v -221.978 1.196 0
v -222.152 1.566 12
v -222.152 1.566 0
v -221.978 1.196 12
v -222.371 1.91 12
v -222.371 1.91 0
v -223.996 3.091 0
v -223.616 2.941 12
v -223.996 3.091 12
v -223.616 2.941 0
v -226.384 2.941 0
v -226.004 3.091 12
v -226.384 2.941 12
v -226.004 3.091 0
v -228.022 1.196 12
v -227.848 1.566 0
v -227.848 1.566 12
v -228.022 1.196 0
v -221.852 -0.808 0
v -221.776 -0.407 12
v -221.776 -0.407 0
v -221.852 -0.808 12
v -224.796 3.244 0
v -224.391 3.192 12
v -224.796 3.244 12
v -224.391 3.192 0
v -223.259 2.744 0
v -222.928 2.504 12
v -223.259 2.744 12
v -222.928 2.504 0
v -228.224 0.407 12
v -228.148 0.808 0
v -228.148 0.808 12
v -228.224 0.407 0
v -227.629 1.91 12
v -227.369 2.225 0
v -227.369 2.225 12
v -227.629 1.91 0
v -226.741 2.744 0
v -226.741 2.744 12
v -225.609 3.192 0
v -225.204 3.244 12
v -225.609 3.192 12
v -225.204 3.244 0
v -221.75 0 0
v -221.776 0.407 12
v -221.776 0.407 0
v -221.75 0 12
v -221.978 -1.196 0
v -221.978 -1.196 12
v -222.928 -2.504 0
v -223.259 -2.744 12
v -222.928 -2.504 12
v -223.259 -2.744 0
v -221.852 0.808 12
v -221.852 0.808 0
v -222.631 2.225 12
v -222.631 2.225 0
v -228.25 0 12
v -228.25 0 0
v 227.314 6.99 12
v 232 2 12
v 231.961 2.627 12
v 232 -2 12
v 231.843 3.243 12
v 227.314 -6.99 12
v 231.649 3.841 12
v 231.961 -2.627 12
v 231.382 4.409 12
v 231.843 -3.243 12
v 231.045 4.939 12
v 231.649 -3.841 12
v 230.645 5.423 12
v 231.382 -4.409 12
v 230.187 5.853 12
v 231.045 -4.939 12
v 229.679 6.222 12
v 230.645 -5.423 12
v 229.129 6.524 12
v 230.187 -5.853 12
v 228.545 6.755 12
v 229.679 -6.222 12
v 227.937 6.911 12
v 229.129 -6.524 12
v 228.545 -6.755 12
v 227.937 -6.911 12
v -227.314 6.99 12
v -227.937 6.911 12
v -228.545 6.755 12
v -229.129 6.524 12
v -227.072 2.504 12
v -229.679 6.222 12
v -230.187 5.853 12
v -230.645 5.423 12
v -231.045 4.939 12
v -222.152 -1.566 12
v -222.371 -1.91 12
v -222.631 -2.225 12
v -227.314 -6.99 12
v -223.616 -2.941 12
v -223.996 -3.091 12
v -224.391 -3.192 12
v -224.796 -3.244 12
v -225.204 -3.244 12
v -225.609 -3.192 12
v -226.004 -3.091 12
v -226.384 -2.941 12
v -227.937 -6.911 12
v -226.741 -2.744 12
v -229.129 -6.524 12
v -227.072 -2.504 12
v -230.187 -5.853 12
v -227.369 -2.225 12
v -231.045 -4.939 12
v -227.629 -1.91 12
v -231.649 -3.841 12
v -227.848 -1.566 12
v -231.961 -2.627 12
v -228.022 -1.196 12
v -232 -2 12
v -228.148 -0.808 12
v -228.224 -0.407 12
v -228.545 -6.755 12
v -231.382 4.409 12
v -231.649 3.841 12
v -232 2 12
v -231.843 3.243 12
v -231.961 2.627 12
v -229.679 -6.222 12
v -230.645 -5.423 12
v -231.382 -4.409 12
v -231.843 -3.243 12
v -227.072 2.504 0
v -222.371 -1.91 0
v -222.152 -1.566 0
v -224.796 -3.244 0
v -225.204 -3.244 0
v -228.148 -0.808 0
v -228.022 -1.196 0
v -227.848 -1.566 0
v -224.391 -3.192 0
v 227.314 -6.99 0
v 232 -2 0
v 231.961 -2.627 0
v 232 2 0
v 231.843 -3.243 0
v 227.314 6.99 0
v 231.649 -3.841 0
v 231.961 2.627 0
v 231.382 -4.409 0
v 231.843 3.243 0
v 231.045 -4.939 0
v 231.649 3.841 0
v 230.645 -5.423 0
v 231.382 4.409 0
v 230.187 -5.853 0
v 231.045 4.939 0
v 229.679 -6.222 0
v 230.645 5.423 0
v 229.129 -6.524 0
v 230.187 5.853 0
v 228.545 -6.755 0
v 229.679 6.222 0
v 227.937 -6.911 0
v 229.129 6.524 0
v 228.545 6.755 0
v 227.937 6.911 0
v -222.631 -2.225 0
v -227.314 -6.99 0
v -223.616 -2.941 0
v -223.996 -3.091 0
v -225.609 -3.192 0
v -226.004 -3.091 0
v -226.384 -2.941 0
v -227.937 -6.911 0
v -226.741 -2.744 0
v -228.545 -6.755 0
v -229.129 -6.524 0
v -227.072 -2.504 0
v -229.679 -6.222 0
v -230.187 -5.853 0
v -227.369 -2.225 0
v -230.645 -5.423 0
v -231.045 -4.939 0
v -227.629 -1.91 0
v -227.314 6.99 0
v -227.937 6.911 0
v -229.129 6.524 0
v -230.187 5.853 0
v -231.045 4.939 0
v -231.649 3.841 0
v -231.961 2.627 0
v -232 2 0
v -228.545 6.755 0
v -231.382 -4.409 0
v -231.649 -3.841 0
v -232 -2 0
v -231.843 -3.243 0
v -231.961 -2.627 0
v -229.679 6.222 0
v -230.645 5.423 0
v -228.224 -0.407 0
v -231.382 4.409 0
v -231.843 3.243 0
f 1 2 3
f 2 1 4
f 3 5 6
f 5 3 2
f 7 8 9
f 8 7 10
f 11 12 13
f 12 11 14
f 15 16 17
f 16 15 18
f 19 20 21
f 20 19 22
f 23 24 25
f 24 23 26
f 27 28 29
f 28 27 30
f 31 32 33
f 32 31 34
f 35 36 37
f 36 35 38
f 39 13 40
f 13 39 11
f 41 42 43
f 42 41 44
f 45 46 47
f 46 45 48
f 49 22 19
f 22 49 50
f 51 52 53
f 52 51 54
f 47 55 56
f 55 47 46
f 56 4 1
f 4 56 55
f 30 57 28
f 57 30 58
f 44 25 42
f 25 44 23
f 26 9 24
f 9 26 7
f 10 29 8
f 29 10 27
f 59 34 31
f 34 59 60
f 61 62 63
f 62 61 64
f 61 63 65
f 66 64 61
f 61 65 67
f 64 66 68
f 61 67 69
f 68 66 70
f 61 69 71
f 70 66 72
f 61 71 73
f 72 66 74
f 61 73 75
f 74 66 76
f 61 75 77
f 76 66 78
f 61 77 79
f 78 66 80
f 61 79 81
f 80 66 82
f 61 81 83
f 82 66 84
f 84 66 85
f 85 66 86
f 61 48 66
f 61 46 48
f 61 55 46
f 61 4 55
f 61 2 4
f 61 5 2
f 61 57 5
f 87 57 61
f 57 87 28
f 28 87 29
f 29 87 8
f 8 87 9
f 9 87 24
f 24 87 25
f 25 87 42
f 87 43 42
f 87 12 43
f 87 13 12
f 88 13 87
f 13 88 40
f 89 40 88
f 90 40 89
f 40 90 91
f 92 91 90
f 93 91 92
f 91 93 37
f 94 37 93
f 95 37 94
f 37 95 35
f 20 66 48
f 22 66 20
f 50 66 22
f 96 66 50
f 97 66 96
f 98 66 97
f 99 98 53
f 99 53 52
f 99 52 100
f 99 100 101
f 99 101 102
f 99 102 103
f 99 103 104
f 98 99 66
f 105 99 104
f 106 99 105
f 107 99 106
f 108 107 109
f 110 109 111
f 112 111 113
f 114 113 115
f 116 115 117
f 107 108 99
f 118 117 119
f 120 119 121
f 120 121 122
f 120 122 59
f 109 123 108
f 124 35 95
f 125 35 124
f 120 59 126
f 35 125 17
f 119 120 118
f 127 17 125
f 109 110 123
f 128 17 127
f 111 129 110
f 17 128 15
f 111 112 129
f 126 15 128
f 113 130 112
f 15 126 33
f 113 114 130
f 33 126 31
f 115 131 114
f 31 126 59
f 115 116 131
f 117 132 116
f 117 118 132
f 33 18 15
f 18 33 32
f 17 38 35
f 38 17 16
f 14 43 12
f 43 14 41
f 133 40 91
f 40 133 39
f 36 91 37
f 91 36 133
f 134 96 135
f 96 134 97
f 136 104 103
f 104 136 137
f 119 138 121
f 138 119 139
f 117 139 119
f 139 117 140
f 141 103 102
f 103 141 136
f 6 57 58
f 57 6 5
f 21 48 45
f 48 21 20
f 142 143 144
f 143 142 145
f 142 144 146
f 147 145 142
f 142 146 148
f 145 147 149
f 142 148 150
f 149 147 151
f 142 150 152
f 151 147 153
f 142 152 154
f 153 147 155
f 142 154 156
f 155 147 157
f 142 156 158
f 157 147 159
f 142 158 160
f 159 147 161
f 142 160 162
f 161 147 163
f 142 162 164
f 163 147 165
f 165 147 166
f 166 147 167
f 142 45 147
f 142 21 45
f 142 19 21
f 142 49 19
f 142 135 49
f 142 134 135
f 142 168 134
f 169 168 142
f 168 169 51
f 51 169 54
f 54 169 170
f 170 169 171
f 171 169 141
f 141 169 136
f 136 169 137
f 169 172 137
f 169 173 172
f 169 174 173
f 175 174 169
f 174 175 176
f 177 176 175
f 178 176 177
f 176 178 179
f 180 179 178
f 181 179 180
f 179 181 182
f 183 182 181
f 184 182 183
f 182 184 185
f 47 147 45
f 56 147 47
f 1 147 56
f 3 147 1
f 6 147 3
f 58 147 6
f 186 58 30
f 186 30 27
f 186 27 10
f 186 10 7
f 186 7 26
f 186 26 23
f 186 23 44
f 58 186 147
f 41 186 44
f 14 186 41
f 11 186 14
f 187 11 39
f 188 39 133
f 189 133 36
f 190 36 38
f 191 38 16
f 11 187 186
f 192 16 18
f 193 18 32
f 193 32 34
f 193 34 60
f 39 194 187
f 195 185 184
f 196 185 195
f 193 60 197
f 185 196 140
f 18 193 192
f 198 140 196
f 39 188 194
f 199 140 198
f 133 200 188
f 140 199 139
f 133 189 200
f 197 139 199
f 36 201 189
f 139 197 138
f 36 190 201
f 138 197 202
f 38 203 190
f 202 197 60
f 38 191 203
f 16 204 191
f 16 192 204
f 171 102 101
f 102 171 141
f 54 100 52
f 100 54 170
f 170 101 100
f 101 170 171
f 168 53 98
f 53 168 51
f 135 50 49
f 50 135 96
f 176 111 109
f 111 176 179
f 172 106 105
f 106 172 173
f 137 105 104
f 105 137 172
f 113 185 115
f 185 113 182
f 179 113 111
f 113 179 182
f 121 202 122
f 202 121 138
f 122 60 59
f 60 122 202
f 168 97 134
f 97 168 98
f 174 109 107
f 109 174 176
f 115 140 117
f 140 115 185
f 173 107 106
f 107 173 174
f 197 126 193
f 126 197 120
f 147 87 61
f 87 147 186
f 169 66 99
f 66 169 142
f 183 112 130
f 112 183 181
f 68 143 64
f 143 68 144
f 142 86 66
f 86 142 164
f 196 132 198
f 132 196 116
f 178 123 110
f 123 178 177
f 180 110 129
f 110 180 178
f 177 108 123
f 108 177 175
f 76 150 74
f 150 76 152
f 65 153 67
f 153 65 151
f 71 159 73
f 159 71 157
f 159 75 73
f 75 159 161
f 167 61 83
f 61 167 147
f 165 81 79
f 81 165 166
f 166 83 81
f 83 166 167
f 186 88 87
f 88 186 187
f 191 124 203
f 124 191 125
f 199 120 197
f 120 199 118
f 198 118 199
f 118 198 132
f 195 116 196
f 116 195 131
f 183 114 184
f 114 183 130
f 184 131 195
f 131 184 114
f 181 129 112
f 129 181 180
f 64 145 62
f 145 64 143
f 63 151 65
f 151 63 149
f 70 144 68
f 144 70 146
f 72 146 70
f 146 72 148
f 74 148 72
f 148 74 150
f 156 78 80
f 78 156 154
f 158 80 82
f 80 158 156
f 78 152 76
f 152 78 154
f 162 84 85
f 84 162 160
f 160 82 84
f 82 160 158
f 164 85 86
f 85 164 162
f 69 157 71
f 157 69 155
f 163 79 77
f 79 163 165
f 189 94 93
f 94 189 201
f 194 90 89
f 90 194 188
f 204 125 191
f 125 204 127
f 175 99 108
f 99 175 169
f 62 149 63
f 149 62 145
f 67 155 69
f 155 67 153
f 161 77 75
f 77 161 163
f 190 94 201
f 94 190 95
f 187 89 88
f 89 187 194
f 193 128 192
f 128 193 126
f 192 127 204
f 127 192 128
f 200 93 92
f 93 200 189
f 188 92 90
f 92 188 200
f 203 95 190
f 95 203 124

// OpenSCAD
$fn = 50;


difference() {
	union() {
		hull() {
			translate(v = [-227.0000000000, 2.0000000000, 0]) {
				cylinder(h = 12, r = 5);
			}
			translate(v = [227.0000000000, 2.0000000000, 0]) {
				cylinder(h = 12, r = 5);
			}
			translate(v = [-227.0000000000, -2.0000000000, 0]) {
				cylinder(h = 12, r = 5);
			}
			translate(v = [227.0000000000, -2.0000000000, 0]) {
				cylinder(h = 12, r = 5);
			}
		}
	}
	union() {
		translate(v = [-225.0000000000, 0.0000000000, 0]) {
			cylinder(h = 12, r = 3.2500000000);
		}
		translate(v = [-225.0000000000, 0.0000000000, 0]) {
			cylinder(h = 12, r = 1.8000000000);
		}
		translate(v = [-225.0000000000, 0.0000000000, 0]) {
			cylinder(h = 12, r = 1.8000000000);
		}
		translate(v = [-225.0000000000, 0.0000000000, 0]) {
			cylinder(h = 12, r = 1.8000000000);
		}
	}
}
